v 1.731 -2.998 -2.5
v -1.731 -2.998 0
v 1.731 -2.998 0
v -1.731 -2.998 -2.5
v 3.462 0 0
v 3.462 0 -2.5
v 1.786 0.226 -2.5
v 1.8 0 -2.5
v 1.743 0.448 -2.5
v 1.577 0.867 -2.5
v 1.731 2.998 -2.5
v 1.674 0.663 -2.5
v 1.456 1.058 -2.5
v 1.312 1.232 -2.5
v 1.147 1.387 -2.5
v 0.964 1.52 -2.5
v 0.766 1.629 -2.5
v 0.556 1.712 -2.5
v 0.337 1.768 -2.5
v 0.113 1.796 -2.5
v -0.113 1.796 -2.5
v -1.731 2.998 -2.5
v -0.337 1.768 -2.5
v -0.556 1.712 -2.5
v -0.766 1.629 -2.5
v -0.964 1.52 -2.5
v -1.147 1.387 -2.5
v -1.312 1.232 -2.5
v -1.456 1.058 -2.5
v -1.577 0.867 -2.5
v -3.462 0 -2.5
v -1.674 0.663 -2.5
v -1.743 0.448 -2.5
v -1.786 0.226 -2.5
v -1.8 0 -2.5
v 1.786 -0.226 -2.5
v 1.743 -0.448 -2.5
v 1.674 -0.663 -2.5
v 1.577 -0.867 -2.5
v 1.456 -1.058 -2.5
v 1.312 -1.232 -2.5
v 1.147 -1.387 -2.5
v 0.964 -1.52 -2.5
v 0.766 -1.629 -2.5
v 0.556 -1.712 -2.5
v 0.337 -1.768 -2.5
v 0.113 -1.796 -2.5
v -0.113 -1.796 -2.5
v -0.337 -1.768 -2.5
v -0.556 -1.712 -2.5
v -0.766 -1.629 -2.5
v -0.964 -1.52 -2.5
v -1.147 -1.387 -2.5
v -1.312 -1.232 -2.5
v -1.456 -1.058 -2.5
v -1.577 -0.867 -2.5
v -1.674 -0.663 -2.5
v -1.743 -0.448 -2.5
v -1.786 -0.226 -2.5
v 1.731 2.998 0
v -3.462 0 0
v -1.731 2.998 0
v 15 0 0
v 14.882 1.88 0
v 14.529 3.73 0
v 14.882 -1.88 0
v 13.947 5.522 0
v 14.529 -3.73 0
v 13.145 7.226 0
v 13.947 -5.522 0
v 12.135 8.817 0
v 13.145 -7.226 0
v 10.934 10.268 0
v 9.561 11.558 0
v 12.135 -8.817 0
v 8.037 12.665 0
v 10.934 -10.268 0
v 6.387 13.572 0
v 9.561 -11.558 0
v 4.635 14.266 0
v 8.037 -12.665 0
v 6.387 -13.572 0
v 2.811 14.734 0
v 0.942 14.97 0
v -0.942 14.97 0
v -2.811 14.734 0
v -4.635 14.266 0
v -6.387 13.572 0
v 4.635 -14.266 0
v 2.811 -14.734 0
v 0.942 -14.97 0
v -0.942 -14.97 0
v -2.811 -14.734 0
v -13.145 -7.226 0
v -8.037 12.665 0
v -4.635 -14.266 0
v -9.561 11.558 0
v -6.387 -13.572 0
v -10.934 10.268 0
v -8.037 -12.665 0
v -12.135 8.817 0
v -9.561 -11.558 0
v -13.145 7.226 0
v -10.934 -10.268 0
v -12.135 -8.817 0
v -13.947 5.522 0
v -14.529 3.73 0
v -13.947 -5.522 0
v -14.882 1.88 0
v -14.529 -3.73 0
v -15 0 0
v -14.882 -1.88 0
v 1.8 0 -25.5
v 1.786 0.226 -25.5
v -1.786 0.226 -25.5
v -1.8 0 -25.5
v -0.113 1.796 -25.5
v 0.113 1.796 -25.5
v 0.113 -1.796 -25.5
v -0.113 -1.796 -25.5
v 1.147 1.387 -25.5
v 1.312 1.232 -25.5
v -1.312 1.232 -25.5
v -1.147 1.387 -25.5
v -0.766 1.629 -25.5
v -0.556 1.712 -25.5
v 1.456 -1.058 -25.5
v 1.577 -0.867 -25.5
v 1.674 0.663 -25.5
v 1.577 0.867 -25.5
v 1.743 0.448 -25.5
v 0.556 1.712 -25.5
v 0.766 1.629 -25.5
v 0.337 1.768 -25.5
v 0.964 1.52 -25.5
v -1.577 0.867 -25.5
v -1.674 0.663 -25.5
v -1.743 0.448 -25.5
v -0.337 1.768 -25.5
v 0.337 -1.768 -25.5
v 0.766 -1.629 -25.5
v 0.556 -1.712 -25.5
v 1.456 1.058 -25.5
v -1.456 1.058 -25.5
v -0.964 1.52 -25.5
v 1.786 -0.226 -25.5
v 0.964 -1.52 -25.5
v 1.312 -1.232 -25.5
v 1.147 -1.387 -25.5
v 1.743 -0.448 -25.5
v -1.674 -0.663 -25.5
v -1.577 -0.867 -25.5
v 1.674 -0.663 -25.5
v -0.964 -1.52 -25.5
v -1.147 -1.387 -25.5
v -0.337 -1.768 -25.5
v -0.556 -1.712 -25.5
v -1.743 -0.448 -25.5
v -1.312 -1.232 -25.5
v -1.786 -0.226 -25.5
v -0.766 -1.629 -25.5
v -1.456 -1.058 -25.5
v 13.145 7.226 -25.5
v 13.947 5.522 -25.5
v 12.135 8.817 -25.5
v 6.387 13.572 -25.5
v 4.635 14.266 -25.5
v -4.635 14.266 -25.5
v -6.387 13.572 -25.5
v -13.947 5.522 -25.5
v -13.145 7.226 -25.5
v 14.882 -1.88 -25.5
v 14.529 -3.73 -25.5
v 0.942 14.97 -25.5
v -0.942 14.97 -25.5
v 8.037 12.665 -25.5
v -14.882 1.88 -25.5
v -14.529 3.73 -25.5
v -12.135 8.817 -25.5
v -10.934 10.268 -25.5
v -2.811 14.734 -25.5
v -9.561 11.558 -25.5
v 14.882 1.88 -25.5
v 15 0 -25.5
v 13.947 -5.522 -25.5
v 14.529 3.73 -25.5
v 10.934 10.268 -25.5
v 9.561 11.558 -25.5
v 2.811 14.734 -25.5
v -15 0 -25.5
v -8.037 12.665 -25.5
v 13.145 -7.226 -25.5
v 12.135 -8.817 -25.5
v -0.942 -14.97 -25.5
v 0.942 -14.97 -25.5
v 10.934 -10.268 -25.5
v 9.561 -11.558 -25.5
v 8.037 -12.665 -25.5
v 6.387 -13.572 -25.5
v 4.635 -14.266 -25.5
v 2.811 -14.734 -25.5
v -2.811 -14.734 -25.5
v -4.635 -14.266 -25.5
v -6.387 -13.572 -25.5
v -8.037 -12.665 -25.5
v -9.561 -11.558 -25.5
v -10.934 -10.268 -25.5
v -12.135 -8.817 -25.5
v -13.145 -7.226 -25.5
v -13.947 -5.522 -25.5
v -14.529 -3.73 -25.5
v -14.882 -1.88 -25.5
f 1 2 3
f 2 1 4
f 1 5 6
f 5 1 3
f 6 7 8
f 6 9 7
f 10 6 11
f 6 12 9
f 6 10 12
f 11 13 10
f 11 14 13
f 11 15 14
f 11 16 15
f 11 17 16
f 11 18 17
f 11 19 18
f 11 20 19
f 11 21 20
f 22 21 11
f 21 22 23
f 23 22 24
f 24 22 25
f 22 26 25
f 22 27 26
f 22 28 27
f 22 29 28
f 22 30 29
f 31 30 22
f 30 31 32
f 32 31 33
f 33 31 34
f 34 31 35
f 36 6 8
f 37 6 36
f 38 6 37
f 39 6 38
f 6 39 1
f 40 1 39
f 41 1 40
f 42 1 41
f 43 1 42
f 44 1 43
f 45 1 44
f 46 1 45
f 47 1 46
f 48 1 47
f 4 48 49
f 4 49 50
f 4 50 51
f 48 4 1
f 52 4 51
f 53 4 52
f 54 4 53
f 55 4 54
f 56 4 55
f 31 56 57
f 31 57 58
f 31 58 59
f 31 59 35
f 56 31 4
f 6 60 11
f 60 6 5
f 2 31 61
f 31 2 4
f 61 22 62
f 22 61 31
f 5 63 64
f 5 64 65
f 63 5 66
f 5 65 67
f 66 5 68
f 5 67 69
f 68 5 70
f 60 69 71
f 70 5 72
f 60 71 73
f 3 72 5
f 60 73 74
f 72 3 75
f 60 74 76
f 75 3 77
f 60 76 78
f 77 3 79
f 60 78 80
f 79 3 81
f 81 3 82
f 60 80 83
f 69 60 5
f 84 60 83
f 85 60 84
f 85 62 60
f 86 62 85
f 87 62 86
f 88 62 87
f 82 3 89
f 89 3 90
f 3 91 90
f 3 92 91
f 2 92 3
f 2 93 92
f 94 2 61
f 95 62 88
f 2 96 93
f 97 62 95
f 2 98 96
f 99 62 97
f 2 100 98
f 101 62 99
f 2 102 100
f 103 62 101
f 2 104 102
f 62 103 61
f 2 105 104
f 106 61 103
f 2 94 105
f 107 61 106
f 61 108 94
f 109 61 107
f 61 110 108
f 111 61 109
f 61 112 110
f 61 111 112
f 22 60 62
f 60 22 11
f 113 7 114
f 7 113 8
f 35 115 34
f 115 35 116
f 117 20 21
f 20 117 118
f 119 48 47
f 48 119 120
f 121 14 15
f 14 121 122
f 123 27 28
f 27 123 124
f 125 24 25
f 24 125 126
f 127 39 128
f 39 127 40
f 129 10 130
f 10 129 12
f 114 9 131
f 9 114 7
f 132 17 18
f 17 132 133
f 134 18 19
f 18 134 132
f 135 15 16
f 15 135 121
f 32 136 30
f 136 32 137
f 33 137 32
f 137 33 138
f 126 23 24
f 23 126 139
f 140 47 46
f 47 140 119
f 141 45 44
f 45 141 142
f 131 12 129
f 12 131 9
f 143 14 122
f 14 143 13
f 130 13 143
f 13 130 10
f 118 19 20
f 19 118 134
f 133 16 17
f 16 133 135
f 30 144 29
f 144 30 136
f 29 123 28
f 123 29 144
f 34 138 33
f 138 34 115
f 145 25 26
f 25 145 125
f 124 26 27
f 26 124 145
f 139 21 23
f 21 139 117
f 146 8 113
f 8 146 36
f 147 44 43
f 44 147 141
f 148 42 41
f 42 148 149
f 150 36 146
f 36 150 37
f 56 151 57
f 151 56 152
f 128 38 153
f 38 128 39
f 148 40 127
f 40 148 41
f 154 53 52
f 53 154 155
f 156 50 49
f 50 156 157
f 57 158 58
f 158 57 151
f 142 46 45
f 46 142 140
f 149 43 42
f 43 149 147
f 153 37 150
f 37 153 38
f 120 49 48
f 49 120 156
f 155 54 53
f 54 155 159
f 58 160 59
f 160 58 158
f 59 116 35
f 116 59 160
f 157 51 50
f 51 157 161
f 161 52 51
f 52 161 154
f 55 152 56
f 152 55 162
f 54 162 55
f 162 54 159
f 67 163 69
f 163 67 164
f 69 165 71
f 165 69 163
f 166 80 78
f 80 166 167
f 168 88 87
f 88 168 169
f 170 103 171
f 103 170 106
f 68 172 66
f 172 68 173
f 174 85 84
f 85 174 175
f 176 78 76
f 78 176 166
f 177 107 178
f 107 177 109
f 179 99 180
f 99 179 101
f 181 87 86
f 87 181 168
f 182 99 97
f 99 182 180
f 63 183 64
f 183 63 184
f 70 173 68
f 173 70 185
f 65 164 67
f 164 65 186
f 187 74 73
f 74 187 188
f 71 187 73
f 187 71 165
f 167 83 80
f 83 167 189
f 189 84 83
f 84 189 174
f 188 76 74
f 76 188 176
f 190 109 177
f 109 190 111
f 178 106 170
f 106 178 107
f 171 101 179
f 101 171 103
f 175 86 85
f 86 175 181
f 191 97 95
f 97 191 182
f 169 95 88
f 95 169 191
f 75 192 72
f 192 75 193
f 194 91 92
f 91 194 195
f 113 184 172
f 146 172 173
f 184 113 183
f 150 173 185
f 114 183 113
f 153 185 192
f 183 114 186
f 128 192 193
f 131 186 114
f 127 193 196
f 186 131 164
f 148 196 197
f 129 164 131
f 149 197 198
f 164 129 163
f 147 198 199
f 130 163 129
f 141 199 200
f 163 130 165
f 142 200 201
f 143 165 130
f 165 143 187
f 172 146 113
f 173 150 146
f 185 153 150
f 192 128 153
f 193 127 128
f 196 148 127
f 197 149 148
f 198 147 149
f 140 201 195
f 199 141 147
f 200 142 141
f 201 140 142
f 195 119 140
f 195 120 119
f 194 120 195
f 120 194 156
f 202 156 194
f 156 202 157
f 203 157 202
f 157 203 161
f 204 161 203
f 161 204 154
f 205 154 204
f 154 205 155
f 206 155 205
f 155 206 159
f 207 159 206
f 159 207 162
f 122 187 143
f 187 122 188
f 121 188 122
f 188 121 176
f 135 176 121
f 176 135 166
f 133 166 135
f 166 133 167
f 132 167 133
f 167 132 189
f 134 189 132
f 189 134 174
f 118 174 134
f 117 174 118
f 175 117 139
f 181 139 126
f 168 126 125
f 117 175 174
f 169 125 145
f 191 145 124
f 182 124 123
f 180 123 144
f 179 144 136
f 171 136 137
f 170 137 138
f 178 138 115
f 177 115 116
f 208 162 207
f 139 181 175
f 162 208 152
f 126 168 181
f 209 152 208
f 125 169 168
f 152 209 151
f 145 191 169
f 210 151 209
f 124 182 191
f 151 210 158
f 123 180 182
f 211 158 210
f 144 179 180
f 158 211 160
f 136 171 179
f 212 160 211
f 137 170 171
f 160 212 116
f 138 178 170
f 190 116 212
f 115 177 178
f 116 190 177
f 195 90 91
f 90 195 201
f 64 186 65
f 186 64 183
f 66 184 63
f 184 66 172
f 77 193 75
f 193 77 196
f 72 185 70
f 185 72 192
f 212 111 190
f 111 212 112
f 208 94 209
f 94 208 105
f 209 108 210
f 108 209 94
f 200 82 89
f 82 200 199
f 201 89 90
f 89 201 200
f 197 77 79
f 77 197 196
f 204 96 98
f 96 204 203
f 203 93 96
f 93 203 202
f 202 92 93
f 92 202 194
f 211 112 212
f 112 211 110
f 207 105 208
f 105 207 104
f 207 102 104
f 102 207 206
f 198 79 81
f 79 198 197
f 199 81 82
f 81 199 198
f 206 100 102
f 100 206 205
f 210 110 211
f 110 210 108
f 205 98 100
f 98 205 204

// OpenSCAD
$fn = 50;

difference() {
	union() {
		translate(v = [0, 0, -25.5]) {
			cylinder(h = 25.5, r = 15.0);
		}
	}
	union() {
		translate(v = [0, 0, 0]) {
			rotate(a = [0, 0, 0]) {
				difference() {
					union() {
						translate(v = [0, 0, -2.5]) {
							linear_extrude(height = 2.5) {
								polygon(points = [[3.4619999999999997, 0.0], [1.7310000000000003, 2.9981799479017264], [-1.7309999999999992, 2.9981799479017264], [-3.4619999999999997, 4.2397272186481365e-16], [-1.7310000000000014, -2.998179947901726], [1.7309999999999977, -2.9981799479017277]]);
							}
						}
					}
					union();
				}
			}
		}
		#translate(v = [0, 0, -100.0]) {
			cylinder(h = 200, r = 1.8);
		}
	}
}
